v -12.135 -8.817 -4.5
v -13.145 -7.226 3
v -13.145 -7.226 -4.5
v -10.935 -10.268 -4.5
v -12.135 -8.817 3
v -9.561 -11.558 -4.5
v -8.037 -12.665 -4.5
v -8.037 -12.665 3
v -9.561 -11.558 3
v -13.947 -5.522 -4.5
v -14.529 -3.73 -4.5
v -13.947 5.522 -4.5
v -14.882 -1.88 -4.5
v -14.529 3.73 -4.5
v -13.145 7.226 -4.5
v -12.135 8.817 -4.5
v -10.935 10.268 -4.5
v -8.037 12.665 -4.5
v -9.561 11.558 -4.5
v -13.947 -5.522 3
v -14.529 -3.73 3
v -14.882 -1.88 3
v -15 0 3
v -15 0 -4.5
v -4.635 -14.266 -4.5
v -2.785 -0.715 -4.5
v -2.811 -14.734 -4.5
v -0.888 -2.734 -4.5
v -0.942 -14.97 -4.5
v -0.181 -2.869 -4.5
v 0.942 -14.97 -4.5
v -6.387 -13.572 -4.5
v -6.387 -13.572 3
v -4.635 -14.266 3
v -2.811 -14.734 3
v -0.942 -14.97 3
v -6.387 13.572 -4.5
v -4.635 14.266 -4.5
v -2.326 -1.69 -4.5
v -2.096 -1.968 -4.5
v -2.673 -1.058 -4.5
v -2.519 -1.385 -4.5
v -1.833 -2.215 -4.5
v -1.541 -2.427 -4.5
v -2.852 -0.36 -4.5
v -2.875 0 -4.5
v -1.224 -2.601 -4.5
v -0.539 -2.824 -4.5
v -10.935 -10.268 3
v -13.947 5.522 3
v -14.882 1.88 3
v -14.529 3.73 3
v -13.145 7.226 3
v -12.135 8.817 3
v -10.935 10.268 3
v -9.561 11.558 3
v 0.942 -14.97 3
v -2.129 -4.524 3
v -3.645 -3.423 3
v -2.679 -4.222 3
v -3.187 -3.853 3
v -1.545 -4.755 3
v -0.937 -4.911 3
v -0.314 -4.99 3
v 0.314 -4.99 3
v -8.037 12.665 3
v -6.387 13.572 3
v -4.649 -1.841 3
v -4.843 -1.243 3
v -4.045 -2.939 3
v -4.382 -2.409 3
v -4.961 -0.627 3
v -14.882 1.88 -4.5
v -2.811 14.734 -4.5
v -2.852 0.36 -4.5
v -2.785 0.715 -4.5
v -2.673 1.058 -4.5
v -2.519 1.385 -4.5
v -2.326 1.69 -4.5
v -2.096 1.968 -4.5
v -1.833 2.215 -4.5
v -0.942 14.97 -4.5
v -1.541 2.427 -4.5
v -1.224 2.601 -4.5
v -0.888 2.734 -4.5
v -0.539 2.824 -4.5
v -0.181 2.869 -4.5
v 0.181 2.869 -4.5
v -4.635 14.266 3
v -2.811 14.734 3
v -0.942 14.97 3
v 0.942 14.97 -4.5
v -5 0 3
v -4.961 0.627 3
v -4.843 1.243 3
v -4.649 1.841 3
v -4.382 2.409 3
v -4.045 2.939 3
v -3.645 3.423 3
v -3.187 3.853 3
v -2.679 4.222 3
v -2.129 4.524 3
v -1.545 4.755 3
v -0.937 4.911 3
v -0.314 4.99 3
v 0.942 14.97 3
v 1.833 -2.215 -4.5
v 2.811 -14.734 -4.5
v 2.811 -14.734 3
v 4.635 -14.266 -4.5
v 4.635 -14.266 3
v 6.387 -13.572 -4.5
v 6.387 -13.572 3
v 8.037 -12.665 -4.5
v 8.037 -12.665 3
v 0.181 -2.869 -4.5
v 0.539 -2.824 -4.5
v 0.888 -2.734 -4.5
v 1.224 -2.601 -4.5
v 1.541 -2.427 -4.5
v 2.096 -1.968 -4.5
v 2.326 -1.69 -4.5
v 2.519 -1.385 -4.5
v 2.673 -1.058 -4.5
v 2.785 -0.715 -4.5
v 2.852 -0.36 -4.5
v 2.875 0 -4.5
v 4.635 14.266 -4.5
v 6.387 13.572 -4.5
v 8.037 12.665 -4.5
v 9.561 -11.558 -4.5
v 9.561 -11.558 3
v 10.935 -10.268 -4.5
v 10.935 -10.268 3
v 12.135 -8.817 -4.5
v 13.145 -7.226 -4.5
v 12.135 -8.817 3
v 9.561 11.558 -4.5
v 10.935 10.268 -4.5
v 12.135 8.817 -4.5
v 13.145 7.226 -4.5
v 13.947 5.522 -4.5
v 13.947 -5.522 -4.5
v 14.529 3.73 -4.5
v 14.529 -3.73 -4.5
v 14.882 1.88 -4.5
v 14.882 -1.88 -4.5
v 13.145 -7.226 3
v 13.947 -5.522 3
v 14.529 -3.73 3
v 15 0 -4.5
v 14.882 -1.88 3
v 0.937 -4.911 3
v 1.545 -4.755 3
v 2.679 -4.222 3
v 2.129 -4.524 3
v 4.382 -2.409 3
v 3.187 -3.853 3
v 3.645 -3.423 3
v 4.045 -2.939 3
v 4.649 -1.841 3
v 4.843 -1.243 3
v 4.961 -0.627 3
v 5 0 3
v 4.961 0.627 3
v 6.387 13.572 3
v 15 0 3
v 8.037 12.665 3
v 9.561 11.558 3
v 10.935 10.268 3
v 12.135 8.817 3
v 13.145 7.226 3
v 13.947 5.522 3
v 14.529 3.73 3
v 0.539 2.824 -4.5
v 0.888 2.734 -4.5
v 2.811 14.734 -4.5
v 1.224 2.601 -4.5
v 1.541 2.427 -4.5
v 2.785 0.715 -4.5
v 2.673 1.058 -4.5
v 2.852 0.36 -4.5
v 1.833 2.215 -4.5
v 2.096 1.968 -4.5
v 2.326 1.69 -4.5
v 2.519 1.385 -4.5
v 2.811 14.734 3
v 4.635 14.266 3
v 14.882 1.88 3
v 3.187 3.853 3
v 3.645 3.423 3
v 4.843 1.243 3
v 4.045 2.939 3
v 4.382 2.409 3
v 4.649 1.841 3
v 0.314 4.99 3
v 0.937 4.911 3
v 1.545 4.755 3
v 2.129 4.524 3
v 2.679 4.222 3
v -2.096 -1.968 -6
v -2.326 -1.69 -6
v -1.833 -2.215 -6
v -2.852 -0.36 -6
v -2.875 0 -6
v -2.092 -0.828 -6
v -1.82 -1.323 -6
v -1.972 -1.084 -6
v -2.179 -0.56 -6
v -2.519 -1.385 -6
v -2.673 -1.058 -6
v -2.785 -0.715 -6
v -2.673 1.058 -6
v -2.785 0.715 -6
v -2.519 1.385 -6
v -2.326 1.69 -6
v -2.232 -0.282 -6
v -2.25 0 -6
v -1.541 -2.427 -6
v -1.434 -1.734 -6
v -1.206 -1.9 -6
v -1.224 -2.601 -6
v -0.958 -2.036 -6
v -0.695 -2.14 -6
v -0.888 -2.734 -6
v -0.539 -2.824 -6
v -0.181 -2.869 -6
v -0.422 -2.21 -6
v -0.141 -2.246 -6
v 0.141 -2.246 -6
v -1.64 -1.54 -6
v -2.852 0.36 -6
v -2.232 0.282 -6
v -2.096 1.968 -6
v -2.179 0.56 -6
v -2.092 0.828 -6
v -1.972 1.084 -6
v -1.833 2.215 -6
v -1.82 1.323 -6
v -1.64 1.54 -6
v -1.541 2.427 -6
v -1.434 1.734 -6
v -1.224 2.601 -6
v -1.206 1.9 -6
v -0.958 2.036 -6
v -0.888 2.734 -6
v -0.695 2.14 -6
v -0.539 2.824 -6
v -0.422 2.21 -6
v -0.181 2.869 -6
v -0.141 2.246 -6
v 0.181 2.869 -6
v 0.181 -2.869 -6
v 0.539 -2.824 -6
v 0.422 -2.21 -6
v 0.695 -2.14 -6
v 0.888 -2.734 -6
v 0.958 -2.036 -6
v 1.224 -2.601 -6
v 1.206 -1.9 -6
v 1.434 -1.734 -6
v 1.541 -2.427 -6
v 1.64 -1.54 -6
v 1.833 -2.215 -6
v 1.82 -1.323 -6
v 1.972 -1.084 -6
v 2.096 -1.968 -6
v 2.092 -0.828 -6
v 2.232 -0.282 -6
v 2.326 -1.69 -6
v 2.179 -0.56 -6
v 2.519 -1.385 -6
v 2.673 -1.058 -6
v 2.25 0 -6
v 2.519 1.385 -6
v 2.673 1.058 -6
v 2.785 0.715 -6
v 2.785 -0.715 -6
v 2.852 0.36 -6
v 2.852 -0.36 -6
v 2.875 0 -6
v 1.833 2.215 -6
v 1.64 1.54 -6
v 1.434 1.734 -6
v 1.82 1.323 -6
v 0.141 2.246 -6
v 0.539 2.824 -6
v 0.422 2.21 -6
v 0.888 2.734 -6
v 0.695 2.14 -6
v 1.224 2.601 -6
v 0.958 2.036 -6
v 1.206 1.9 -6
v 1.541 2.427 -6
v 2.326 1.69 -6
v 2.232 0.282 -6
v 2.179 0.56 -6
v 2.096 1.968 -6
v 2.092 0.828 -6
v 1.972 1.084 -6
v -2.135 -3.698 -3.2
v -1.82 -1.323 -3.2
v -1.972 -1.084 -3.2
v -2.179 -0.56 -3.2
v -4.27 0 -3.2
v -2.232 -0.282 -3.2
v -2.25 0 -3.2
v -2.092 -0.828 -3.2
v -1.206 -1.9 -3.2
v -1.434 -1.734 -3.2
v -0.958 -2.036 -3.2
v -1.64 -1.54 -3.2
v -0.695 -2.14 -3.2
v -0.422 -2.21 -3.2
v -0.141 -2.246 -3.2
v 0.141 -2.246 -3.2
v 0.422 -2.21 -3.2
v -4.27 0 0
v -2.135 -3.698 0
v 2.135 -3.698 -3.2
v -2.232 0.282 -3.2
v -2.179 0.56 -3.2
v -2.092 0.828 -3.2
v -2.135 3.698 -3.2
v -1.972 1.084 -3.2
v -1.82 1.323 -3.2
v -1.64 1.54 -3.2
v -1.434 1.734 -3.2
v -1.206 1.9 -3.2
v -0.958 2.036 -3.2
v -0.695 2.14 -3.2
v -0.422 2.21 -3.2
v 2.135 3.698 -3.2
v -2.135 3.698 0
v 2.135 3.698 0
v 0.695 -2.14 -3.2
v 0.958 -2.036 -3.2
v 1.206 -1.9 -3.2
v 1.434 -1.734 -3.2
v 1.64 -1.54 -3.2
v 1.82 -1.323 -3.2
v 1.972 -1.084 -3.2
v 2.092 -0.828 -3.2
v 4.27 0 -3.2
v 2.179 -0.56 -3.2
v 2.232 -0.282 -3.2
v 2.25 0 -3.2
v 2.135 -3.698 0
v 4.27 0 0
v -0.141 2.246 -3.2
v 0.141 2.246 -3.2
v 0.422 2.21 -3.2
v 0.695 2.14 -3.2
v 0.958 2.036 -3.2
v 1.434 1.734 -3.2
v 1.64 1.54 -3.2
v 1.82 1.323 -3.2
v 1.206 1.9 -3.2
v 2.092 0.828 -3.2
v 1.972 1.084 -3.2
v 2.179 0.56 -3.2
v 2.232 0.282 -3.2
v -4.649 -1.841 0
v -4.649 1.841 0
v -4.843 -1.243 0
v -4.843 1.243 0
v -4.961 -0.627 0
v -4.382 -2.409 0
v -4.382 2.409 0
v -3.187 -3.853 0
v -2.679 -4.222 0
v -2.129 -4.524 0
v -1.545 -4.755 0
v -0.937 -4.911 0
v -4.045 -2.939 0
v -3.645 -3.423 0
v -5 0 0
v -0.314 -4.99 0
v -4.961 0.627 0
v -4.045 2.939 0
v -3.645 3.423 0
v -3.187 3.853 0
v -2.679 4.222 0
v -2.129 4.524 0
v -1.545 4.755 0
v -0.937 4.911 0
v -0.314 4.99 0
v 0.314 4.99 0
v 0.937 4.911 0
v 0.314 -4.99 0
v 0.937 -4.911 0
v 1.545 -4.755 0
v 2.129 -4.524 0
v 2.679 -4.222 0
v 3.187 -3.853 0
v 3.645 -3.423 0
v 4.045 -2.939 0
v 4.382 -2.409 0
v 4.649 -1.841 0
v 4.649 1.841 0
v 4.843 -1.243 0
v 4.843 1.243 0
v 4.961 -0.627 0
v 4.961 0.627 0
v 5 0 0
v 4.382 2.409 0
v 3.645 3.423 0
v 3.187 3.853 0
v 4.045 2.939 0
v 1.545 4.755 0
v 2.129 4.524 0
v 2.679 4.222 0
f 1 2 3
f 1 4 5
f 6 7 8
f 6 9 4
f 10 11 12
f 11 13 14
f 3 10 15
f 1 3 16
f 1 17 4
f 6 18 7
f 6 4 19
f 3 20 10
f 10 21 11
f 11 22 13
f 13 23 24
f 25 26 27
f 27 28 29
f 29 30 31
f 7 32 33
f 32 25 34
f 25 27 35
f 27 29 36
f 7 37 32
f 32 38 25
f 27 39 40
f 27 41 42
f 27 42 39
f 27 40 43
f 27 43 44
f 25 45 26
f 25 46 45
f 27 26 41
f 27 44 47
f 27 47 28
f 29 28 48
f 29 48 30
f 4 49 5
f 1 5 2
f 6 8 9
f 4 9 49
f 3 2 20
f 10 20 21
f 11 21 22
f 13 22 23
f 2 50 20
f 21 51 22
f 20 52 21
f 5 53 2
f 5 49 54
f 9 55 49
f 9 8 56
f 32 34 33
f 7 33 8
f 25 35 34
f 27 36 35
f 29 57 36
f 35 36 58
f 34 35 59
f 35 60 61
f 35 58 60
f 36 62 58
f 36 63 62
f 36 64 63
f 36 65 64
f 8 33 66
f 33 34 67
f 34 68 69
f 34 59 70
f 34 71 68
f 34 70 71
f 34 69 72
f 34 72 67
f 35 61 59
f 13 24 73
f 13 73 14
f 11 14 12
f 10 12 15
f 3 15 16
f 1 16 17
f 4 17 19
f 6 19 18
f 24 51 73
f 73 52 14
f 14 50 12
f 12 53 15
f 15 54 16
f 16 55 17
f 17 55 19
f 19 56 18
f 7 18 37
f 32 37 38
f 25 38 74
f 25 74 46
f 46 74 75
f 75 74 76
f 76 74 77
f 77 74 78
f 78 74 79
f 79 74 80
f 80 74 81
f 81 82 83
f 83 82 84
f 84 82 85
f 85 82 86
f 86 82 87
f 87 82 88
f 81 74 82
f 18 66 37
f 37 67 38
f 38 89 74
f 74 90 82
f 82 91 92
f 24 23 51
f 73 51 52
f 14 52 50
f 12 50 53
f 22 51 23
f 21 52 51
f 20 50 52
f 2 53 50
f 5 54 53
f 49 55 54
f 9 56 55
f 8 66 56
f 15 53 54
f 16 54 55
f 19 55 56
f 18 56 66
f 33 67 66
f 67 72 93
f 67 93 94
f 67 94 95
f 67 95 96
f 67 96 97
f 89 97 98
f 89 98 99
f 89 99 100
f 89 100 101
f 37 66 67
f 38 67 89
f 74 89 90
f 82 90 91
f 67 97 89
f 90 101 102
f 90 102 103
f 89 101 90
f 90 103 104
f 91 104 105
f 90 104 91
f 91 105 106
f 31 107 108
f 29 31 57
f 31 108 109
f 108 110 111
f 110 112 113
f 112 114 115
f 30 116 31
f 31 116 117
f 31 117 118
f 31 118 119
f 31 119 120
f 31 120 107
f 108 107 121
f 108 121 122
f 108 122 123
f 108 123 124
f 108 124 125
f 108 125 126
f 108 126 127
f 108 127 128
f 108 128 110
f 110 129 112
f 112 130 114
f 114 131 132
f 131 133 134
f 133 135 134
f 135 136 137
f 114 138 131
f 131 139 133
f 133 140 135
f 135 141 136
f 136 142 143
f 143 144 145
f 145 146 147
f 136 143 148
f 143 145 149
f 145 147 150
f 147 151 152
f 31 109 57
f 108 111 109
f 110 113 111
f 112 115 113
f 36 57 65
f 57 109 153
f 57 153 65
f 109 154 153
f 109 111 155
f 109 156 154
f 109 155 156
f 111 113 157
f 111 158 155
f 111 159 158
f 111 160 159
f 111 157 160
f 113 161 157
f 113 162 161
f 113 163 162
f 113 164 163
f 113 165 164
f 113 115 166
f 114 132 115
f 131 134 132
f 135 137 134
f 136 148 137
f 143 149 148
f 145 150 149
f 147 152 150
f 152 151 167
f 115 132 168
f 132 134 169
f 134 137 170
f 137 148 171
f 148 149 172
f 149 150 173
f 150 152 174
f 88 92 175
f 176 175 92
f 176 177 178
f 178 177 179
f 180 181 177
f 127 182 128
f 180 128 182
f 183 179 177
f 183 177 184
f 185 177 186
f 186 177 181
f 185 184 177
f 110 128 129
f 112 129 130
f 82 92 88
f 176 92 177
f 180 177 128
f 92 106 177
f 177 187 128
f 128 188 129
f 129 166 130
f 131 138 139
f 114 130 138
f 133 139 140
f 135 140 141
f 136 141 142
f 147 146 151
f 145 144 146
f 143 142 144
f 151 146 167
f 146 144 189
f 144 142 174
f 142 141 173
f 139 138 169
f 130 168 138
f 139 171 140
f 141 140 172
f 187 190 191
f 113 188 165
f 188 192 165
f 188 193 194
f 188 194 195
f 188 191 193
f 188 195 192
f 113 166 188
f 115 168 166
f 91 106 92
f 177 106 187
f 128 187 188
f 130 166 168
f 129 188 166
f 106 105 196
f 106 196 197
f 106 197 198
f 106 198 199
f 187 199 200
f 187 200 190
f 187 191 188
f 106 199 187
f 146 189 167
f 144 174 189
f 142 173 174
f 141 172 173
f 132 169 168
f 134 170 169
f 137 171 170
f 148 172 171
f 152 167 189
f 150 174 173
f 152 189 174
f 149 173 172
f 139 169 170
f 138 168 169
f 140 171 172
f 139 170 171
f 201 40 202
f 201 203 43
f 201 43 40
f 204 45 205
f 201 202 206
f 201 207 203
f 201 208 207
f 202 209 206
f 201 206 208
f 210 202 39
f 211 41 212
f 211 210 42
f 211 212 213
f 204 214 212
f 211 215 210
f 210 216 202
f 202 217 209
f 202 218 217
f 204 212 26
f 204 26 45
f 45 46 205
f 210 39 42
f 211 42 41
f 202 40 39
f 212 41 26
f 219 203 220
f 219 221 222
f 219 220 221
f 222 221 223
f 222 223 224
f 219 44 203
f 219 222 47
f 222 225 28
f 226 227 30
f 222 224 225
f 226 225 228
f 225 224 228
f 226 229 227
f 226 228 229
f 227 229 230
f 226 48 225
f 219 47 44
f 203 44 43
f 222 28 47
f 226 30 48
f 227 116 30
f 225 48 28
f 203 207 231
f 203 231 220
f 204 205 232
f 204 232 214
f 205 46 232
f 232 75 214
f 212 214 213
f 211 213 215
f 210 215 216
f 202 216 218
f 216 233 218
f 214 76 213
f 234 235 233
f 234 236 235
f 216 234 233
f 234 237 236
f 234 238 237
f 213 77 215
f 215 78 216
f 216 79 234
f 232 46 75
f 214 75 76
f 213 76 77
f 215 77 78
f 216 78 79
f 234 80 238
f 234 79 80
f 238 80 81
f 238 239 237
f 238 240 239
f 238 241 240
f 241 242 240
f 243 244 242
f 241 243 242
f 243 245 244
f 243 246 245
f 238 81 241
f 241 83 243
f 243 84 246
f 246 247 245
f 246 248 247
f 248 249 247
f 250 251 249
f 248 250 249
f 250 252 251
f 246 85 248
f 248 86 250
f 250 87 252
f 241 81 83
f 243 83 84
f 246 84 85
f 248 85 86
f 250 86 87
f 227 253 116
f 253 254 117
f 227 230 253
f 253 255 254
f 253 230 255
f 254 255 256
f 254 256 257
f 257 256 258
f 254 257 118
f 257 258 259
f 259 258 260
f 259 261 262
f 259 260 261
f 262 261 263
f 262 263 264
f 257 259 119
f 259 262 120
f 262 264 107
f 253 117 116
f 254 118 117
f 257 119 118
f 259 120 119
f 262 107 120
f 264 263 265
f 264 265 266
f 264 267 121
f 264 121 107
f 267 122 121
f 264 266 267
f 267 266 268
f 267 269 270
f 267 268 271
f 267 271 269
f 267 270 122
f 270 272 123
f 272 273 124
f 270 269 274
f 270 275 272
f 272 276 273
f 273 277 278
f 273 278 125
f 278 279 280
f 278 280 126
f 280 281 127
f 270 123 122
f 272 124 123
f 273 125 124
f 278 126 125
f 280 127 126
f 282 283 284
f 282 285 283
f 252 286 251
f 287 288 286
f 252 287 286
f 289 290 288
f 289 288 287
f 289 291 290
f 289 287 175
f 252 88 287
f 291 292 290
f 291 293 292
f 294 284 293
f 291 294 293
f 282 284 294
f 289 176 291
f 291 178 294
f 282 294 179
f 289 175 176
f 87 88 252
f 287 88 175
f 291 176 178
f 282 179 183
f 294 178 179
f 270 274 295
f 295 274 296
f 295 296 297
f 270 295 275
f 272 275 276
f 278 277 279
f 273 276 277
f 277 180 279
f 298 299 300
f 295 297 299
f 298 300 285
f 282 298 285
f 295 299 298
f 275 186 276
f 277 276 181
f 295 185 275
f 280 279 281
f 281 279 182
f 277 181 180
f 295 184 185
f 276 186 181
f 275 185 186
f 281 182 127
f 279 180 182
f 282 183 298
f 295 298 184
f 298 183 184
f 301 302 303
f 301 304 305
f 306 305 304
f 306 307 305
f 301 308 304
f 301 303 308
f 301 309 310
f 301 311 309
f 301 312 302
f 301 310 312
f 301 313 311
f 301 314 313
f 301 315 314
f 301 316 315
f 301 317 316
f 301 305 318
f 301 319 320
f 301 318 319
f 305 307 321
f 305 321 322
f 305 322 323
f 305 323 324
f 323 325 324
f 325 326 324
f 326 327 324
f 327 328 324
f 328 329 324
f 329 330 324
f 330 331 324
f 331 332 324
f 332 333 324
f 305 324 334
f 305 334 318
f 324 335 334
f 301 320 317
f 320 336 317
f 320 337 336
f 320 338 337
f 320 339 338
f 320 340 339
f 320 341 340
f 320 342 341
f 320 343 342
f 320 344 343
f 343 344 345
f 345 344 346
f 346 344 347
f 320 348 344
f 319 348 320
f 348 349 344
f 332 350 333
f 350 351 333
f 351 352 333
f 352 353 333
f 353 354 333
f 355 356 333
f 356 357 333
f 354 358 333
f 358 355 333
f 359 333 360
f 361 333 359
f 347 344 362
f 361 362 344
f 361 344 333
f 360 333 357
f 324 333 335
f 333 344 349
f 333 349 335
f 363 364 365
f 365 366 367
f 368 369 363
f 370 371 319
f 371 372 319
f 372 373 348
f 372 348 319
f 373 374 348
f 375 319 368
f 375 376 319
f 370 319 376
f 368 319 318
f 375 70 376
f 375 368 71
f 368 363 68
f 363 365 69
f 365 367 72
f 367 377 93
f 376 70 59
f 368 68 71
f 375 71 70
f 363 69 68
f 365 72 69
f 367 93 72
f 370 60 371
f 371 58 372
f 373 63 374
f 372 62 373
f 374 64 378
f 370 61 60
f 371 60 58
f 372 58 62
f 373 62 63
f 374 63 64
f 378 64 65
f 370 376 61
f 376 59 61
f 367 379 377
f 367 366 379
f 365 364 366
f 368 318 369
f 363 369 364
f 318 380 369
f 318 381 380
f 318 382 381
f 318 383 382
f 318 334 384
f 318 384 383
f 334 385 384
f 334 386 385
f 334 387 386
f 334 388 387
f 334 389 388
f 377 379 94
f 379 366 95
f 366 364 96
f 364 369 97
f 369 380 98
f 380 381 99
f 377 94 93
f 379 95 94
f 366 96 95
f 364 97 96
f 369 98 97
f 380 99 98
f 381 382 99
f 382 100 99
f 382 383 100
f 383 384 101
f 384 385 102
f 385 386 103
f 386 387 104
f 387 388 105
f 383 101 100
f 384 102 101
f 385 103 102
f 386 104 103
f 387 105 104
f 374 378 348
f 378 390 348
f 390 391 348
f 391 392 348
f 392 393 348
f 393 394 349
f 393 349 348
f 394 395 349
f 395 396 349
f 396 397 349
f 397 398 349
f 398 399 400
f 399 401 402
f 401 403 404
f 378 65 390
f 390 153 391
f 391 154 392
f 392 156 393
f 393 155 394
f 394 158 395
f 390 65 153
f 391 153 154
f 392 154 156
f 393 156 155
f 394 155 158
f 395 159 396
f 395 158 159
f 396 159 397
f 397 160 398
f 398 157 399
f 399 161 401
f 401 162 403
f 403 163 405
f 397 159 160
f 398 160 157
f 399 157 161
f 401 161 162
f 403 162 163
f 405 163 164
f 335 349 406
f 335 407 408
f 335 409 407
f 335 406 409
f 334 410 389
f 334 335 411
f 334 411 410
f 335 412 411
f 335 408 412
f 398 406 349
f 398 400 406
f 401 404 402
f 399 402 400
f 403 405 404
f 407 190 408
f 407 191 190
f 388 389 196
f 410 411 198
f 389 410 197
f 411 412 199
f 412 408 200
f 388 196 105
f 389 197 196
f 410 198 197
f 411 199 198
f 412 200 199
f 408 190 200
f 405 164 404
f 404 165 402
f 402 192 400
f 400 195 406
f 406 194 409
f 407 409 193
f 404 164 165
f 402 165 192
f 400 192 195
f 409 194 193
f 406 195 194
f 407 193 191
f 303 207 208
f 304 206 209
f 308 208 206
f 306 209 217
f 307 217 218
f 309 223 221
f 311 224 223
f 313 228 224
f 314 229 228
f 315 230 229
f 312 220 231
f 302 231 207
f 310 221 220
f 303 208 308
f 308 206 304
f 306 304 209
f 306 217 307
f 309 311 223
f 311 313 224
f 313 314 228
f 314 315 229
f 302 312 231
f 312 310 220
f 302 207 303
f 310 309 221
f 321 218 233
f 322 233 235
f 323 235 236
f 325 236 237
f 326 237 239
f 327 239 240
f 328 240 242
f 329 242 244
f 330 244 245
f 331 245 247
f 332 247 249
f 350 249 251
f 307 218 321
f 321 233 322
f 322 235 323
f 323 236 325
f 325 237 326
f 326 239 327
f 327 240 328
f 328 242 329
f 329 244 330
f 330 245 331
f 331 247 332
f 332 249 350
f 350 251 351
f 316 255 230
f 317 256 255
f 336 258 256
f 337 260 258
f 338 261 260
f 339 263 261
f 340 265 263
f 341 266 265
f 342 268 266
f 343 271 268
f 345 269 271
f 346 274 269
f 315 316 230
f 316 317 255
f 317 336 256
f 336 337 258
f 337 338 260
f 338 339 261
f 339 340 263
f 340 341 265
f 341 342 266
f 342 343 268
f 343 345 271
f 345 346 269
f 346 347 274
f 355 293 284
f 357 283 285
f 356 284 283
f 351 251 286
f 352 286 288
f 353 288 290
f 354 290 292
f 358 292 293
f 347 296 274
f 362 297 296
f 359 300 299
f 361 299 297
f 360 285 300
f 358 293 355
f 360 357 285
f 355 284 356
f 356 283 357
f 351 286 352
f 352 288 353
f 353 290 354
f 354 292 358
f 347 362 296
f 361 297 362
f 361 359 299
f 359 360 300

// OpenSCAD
$fn = 50;

difference() {
	union() {
		translate(v = [0, 0, -4.5]) {
			cylinder(h = 7.5, r = 15.0);
		}
		#translate(v = [0, 0, -6.0]) {
			cylinder(h = 6, r = 2.875);
		}
	}
	union() {
		translate(v = [0, 0, 0]) {
			rotate(a = [0, 0, 0]) {
				difference() {
					union() {
						translate(v = [0, 0, -3.2]) {
							linear_extrude(height = 3.2) {
								polygon(points = [[4.2698, 0.0], [2.1349000000000005, 3.697755269078796], [-2.134899999999999, 3.6977552690787965], [-4.2698, 5.228996902999369e-16], [-2.134900000000002, -3.6977552690787956], [2.1348999999999974, -3.697755269078798]]);
							}
						}
					}
					union();
				}
			}
		}
		#cylinder(h = 3, r = 5.0);
		#translate(v = [0, 0, -100.0]) {
			cylinder(h = 200, r = 2.25);
		}
	}
}
